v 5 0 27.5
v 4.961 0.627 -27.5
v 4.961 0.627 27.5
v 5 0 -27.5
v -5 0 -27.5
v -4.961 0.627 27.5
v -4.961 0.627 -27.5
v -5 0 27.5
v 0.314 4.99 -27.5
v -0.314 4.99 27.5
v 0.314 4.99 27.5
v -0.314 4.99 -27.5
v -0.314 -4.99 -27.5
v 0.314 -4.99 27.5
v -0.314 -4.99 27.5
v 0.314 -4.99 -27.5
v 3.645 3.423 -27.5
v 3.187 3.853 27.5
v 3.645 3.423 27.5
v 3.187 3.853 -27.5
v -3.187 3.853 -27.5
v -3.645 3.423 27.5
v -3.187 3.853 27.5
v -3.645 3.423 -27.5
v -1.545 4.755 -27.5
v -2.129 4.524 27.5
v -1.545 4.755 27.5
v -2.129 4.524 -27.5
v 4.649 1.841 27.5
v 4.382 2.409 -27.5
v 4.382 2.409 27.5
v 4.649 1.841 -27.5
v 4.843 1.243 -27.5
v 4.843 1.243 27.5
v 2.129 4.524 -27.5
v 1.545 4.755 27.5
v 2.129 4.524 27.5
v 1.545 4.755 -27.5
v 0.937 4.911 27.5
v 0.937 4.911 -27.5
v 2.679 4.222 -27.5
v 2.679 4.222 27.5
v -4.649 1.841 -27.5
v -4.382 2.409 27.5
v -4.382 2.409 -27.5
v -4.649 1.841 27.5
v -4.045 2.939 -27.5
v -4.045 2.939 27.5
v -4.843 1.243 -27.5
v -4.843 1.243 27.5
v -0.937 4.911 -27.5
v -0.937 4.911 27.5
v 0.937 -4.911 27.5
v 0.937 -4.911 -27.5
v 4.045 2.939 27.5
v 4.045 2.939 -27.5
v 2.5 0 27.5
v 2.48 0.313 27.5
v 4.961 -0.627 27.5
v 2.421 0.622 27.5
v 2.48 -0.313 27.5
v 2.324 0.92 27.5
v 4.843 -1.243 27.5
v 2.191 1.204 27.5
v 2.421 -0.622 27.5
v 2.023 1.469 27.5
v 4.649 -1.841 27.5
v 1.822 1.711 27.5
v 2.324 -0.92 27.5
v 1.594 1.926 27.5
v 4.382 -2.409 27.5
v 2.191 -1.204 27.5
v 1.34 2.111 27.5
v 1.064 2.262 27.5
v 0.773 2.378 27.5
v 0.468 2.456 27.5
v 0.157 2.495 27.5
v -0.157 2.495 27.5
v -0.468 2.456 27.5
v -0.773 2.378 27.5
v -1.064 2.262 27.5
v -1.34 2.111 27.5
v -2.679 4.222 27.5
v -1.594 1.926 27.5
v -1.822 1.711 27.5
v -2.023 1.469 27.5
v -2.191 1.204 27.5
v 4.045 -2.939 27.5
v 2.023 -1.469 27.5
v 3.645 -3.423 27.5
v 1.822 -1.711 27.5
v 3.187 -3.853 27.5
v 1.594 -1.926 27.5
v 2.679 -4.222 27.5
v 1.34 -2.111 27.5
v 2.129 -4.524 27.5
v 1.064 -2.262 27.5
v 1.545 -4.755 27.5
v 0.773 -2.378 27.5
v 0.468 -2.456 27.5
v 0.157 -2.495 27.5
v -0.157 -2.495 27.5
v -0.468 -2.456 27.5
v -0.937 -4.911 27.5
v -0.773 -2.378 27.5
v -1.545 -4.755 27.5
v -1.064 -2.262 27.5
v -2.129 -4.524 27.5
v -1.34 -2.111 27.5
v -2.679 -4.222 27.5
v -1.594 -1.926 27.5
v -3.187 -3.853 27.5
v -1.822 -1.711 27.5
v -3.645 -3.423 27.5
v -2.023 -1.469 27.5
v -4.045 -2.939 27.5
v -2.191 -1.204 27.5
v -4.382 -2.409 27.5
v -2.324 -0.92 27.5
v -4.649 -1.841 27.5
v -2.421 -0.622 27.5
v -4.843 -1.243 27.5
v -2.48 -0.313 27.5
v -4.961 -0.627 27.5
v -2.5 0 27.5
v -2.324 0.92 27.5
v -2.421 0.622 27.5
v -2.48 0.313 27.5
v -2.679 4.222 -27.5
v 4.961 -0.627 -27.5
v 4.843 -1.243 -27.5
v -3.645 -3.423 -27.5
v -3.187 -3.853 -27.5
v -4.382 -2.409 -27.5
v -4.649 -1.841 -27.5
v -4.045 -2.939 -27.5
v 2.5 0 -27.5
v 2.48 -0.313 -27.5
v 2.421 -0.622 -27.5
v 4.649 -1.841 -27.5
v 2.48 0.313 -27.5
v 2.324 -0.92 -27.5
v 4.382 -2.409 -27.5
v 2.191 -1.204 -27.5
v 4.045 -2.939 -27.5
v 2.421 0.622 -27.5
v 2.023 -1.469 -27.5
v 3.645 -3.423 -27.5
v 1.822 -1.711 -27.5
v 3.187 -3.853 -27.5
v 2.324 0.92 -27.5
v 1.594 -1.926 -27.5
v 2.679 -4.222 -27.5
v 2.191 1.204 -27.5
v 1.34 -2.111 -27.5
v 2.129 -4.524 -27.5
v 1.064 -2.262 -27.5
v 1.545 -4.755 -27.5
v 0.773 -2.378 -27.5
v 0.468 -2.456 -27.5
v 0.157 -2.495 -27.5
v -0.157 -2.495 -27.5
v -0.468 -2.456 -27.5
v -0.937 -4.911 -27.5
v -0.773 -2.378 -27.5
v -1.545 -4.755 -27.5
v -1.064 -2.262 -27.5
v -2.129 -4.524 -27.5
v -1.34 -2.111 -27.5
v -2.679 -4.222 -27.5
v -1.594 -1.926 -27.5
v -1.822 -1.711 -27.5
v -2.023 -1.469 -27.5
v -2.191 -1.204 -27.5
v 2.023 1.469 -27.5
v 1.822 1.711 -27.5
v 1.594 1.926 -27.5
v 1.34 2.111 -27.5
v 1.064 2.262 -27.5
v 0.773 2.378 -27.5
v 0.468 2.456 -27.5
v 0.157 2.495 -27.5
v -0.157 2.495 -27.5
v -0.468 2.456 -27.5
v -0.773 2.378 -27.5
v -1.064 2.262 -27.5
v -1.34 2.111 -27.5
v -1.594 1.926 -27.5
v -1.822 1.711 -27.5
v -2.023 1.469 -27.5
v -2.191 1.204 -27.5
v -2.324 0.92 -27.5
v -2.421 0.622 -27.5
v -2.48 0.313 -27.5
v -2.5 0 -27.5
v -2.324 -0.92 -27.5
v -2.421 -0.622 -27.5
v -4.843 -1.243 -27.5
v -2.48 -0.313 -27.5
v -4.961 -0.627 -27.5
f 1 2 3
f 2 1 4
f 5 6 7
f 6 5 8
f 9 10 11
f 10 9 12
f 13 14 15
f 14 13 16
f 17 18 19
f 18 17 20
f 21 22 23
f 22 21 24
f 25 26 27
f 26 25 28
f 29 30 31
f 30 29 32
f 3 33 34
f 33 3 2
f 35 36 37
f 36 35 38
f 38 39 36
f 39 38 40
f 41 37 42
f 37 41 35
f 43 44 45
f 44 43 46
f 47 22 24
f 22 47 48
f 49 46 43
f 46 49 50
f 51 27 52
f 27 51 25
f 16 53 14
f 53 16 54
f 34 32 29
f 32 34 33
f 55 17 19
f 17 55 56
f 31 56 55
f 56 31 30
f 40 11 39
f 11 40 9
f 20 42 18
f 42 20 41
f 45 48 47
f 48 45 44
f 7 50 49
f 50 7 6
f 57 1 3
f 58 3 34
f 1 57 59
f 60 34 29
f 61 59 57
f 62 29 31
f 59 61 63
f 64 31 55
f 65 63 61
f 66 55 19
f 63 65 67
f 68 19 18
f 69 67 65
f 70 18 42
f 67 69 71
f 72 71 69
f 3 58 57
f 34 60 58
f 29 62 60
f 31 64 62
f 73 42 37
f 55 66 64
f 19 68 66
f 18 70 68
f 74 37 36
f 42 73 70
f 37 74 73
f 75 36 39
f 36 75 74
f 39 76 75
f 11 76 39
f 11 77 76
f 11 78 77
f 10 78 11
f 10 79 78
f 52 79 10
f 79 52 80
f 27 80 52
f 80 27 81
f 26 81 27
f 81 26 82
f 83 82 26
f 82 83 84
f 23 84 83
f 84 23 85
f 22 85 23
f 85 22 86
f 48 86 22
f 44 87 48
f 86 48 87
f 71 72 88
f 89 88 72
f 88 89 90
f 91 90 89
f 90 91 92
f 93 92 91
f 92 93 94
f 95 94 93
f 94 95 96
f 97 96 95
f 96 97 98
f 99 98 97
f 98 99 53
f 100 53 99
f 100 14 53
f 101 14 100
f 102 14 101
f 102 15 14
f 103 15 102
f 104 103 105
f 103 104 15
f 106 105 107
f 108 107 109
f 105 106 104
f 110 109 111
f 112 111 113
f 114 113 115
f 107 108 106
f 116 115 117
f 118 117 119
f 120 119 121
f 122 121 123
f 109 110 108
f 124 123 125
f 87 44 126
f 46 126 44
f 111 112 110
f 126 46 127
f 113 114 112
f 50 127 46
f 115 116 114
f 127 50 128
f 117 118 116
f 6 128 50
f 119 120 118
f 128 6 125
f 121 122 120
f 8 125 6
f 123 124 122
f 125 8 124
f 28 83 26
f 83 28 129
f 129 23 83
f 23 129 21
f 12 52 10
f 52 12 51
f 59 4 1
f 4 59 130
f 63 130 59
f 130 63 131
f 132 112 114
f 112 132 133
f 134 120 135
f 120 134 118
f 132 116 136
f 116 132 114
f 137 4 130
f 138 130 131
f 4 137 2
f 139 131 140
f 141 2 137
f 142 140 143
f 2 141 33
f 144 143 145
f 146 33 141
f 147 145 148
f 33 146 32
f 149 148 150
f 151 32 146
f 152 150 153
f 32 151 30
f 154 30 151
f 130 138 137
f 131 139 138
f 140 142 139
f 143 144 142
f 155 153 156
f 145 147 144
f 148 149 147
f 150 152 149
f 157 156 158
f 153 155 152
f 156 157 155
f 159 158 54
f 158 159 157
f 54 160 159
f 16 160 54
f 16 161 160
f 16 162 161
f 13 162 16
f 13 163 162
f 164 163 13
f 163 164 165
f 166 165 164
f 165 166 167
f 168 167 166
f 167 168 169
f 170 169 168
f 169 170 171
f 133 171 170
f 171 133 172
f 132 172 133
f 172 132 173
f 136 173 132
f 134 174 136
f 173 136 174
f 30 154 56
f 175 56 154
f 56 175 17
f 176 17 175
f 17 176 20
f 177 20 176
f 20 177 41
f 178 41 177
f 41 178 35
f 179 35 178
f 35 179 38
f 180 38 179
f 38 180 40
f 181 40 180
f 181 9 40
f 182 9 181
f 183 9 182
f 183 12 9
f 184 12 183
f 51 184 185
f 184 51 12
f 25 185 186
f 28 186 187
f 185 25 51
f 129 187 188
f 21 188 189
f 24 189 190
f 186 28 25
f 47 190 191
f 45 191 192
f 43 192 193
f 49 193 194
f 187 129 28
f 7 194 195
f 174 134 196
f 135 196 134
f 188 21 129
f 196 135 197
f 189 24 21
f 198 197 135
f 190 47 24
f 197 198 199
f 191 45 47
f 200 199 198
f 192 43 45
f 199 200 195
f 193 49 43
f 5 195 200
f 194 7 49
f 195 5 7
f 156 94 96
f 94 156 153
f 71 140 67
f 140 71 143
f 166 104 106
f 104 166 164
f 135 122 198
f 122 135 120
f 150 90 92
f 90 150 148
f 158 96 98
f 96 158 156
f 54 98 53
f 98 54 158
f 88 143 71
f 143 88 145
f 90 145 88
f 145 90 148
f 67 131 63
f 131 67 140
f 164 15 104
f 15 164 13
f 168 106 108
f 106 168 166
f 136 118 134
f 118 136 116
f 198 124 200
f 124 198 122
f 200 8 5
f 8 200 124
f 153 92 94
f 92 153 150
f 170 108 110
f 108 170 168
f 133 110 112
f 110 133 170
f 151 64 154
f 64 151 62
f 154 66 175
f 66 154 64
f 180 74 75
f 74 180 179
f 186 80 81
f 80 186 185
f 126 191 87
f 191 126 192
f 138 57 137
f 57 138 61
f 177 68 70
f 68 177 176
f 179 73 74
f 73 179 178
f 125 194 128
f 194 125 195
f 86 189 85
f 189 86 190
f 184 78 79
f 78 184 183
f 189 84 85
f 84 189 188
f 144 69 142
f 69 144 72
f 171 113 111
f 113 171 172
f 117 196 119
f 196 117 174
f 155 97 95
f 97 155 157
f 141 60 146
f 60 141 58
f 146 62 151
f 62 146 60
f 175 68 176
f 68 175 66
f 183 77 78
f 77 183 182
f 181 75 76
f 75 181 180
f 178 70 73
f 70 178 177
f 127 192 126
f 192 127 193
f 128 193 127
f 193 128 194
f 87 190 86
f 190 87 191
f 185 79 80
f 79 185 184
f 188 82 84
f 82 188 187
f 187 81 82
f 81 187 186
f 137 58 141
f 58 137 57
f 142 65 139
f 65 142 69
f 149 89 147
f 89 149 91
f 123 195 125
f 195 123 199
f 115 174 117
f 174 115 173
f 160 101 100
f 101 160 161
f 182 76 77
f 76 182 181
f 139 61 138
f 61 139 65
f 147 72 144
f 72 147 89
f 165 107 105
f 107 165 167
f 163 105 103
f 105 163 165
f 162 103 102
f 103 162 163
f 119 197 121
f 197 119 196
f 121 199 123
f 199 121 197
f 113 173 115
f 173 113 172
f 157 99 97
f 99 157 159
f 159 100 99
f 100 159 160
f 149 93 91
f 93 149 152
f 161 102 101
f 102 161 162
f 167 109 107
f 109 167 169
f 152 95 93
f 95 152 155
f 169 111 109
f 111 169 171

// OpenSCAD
$fn = 50;


difference() {
	union() {
		translate(v = [0, 0, -27.5000000000]) {
			cylinder(h = 55, r = 5.0000000000);
		}
	}
	union() {
		translate(v = [0, 0, -100.0000000000]) {
			cylinder(h = 200, r = 2.5000000000);
		}
	}
}
